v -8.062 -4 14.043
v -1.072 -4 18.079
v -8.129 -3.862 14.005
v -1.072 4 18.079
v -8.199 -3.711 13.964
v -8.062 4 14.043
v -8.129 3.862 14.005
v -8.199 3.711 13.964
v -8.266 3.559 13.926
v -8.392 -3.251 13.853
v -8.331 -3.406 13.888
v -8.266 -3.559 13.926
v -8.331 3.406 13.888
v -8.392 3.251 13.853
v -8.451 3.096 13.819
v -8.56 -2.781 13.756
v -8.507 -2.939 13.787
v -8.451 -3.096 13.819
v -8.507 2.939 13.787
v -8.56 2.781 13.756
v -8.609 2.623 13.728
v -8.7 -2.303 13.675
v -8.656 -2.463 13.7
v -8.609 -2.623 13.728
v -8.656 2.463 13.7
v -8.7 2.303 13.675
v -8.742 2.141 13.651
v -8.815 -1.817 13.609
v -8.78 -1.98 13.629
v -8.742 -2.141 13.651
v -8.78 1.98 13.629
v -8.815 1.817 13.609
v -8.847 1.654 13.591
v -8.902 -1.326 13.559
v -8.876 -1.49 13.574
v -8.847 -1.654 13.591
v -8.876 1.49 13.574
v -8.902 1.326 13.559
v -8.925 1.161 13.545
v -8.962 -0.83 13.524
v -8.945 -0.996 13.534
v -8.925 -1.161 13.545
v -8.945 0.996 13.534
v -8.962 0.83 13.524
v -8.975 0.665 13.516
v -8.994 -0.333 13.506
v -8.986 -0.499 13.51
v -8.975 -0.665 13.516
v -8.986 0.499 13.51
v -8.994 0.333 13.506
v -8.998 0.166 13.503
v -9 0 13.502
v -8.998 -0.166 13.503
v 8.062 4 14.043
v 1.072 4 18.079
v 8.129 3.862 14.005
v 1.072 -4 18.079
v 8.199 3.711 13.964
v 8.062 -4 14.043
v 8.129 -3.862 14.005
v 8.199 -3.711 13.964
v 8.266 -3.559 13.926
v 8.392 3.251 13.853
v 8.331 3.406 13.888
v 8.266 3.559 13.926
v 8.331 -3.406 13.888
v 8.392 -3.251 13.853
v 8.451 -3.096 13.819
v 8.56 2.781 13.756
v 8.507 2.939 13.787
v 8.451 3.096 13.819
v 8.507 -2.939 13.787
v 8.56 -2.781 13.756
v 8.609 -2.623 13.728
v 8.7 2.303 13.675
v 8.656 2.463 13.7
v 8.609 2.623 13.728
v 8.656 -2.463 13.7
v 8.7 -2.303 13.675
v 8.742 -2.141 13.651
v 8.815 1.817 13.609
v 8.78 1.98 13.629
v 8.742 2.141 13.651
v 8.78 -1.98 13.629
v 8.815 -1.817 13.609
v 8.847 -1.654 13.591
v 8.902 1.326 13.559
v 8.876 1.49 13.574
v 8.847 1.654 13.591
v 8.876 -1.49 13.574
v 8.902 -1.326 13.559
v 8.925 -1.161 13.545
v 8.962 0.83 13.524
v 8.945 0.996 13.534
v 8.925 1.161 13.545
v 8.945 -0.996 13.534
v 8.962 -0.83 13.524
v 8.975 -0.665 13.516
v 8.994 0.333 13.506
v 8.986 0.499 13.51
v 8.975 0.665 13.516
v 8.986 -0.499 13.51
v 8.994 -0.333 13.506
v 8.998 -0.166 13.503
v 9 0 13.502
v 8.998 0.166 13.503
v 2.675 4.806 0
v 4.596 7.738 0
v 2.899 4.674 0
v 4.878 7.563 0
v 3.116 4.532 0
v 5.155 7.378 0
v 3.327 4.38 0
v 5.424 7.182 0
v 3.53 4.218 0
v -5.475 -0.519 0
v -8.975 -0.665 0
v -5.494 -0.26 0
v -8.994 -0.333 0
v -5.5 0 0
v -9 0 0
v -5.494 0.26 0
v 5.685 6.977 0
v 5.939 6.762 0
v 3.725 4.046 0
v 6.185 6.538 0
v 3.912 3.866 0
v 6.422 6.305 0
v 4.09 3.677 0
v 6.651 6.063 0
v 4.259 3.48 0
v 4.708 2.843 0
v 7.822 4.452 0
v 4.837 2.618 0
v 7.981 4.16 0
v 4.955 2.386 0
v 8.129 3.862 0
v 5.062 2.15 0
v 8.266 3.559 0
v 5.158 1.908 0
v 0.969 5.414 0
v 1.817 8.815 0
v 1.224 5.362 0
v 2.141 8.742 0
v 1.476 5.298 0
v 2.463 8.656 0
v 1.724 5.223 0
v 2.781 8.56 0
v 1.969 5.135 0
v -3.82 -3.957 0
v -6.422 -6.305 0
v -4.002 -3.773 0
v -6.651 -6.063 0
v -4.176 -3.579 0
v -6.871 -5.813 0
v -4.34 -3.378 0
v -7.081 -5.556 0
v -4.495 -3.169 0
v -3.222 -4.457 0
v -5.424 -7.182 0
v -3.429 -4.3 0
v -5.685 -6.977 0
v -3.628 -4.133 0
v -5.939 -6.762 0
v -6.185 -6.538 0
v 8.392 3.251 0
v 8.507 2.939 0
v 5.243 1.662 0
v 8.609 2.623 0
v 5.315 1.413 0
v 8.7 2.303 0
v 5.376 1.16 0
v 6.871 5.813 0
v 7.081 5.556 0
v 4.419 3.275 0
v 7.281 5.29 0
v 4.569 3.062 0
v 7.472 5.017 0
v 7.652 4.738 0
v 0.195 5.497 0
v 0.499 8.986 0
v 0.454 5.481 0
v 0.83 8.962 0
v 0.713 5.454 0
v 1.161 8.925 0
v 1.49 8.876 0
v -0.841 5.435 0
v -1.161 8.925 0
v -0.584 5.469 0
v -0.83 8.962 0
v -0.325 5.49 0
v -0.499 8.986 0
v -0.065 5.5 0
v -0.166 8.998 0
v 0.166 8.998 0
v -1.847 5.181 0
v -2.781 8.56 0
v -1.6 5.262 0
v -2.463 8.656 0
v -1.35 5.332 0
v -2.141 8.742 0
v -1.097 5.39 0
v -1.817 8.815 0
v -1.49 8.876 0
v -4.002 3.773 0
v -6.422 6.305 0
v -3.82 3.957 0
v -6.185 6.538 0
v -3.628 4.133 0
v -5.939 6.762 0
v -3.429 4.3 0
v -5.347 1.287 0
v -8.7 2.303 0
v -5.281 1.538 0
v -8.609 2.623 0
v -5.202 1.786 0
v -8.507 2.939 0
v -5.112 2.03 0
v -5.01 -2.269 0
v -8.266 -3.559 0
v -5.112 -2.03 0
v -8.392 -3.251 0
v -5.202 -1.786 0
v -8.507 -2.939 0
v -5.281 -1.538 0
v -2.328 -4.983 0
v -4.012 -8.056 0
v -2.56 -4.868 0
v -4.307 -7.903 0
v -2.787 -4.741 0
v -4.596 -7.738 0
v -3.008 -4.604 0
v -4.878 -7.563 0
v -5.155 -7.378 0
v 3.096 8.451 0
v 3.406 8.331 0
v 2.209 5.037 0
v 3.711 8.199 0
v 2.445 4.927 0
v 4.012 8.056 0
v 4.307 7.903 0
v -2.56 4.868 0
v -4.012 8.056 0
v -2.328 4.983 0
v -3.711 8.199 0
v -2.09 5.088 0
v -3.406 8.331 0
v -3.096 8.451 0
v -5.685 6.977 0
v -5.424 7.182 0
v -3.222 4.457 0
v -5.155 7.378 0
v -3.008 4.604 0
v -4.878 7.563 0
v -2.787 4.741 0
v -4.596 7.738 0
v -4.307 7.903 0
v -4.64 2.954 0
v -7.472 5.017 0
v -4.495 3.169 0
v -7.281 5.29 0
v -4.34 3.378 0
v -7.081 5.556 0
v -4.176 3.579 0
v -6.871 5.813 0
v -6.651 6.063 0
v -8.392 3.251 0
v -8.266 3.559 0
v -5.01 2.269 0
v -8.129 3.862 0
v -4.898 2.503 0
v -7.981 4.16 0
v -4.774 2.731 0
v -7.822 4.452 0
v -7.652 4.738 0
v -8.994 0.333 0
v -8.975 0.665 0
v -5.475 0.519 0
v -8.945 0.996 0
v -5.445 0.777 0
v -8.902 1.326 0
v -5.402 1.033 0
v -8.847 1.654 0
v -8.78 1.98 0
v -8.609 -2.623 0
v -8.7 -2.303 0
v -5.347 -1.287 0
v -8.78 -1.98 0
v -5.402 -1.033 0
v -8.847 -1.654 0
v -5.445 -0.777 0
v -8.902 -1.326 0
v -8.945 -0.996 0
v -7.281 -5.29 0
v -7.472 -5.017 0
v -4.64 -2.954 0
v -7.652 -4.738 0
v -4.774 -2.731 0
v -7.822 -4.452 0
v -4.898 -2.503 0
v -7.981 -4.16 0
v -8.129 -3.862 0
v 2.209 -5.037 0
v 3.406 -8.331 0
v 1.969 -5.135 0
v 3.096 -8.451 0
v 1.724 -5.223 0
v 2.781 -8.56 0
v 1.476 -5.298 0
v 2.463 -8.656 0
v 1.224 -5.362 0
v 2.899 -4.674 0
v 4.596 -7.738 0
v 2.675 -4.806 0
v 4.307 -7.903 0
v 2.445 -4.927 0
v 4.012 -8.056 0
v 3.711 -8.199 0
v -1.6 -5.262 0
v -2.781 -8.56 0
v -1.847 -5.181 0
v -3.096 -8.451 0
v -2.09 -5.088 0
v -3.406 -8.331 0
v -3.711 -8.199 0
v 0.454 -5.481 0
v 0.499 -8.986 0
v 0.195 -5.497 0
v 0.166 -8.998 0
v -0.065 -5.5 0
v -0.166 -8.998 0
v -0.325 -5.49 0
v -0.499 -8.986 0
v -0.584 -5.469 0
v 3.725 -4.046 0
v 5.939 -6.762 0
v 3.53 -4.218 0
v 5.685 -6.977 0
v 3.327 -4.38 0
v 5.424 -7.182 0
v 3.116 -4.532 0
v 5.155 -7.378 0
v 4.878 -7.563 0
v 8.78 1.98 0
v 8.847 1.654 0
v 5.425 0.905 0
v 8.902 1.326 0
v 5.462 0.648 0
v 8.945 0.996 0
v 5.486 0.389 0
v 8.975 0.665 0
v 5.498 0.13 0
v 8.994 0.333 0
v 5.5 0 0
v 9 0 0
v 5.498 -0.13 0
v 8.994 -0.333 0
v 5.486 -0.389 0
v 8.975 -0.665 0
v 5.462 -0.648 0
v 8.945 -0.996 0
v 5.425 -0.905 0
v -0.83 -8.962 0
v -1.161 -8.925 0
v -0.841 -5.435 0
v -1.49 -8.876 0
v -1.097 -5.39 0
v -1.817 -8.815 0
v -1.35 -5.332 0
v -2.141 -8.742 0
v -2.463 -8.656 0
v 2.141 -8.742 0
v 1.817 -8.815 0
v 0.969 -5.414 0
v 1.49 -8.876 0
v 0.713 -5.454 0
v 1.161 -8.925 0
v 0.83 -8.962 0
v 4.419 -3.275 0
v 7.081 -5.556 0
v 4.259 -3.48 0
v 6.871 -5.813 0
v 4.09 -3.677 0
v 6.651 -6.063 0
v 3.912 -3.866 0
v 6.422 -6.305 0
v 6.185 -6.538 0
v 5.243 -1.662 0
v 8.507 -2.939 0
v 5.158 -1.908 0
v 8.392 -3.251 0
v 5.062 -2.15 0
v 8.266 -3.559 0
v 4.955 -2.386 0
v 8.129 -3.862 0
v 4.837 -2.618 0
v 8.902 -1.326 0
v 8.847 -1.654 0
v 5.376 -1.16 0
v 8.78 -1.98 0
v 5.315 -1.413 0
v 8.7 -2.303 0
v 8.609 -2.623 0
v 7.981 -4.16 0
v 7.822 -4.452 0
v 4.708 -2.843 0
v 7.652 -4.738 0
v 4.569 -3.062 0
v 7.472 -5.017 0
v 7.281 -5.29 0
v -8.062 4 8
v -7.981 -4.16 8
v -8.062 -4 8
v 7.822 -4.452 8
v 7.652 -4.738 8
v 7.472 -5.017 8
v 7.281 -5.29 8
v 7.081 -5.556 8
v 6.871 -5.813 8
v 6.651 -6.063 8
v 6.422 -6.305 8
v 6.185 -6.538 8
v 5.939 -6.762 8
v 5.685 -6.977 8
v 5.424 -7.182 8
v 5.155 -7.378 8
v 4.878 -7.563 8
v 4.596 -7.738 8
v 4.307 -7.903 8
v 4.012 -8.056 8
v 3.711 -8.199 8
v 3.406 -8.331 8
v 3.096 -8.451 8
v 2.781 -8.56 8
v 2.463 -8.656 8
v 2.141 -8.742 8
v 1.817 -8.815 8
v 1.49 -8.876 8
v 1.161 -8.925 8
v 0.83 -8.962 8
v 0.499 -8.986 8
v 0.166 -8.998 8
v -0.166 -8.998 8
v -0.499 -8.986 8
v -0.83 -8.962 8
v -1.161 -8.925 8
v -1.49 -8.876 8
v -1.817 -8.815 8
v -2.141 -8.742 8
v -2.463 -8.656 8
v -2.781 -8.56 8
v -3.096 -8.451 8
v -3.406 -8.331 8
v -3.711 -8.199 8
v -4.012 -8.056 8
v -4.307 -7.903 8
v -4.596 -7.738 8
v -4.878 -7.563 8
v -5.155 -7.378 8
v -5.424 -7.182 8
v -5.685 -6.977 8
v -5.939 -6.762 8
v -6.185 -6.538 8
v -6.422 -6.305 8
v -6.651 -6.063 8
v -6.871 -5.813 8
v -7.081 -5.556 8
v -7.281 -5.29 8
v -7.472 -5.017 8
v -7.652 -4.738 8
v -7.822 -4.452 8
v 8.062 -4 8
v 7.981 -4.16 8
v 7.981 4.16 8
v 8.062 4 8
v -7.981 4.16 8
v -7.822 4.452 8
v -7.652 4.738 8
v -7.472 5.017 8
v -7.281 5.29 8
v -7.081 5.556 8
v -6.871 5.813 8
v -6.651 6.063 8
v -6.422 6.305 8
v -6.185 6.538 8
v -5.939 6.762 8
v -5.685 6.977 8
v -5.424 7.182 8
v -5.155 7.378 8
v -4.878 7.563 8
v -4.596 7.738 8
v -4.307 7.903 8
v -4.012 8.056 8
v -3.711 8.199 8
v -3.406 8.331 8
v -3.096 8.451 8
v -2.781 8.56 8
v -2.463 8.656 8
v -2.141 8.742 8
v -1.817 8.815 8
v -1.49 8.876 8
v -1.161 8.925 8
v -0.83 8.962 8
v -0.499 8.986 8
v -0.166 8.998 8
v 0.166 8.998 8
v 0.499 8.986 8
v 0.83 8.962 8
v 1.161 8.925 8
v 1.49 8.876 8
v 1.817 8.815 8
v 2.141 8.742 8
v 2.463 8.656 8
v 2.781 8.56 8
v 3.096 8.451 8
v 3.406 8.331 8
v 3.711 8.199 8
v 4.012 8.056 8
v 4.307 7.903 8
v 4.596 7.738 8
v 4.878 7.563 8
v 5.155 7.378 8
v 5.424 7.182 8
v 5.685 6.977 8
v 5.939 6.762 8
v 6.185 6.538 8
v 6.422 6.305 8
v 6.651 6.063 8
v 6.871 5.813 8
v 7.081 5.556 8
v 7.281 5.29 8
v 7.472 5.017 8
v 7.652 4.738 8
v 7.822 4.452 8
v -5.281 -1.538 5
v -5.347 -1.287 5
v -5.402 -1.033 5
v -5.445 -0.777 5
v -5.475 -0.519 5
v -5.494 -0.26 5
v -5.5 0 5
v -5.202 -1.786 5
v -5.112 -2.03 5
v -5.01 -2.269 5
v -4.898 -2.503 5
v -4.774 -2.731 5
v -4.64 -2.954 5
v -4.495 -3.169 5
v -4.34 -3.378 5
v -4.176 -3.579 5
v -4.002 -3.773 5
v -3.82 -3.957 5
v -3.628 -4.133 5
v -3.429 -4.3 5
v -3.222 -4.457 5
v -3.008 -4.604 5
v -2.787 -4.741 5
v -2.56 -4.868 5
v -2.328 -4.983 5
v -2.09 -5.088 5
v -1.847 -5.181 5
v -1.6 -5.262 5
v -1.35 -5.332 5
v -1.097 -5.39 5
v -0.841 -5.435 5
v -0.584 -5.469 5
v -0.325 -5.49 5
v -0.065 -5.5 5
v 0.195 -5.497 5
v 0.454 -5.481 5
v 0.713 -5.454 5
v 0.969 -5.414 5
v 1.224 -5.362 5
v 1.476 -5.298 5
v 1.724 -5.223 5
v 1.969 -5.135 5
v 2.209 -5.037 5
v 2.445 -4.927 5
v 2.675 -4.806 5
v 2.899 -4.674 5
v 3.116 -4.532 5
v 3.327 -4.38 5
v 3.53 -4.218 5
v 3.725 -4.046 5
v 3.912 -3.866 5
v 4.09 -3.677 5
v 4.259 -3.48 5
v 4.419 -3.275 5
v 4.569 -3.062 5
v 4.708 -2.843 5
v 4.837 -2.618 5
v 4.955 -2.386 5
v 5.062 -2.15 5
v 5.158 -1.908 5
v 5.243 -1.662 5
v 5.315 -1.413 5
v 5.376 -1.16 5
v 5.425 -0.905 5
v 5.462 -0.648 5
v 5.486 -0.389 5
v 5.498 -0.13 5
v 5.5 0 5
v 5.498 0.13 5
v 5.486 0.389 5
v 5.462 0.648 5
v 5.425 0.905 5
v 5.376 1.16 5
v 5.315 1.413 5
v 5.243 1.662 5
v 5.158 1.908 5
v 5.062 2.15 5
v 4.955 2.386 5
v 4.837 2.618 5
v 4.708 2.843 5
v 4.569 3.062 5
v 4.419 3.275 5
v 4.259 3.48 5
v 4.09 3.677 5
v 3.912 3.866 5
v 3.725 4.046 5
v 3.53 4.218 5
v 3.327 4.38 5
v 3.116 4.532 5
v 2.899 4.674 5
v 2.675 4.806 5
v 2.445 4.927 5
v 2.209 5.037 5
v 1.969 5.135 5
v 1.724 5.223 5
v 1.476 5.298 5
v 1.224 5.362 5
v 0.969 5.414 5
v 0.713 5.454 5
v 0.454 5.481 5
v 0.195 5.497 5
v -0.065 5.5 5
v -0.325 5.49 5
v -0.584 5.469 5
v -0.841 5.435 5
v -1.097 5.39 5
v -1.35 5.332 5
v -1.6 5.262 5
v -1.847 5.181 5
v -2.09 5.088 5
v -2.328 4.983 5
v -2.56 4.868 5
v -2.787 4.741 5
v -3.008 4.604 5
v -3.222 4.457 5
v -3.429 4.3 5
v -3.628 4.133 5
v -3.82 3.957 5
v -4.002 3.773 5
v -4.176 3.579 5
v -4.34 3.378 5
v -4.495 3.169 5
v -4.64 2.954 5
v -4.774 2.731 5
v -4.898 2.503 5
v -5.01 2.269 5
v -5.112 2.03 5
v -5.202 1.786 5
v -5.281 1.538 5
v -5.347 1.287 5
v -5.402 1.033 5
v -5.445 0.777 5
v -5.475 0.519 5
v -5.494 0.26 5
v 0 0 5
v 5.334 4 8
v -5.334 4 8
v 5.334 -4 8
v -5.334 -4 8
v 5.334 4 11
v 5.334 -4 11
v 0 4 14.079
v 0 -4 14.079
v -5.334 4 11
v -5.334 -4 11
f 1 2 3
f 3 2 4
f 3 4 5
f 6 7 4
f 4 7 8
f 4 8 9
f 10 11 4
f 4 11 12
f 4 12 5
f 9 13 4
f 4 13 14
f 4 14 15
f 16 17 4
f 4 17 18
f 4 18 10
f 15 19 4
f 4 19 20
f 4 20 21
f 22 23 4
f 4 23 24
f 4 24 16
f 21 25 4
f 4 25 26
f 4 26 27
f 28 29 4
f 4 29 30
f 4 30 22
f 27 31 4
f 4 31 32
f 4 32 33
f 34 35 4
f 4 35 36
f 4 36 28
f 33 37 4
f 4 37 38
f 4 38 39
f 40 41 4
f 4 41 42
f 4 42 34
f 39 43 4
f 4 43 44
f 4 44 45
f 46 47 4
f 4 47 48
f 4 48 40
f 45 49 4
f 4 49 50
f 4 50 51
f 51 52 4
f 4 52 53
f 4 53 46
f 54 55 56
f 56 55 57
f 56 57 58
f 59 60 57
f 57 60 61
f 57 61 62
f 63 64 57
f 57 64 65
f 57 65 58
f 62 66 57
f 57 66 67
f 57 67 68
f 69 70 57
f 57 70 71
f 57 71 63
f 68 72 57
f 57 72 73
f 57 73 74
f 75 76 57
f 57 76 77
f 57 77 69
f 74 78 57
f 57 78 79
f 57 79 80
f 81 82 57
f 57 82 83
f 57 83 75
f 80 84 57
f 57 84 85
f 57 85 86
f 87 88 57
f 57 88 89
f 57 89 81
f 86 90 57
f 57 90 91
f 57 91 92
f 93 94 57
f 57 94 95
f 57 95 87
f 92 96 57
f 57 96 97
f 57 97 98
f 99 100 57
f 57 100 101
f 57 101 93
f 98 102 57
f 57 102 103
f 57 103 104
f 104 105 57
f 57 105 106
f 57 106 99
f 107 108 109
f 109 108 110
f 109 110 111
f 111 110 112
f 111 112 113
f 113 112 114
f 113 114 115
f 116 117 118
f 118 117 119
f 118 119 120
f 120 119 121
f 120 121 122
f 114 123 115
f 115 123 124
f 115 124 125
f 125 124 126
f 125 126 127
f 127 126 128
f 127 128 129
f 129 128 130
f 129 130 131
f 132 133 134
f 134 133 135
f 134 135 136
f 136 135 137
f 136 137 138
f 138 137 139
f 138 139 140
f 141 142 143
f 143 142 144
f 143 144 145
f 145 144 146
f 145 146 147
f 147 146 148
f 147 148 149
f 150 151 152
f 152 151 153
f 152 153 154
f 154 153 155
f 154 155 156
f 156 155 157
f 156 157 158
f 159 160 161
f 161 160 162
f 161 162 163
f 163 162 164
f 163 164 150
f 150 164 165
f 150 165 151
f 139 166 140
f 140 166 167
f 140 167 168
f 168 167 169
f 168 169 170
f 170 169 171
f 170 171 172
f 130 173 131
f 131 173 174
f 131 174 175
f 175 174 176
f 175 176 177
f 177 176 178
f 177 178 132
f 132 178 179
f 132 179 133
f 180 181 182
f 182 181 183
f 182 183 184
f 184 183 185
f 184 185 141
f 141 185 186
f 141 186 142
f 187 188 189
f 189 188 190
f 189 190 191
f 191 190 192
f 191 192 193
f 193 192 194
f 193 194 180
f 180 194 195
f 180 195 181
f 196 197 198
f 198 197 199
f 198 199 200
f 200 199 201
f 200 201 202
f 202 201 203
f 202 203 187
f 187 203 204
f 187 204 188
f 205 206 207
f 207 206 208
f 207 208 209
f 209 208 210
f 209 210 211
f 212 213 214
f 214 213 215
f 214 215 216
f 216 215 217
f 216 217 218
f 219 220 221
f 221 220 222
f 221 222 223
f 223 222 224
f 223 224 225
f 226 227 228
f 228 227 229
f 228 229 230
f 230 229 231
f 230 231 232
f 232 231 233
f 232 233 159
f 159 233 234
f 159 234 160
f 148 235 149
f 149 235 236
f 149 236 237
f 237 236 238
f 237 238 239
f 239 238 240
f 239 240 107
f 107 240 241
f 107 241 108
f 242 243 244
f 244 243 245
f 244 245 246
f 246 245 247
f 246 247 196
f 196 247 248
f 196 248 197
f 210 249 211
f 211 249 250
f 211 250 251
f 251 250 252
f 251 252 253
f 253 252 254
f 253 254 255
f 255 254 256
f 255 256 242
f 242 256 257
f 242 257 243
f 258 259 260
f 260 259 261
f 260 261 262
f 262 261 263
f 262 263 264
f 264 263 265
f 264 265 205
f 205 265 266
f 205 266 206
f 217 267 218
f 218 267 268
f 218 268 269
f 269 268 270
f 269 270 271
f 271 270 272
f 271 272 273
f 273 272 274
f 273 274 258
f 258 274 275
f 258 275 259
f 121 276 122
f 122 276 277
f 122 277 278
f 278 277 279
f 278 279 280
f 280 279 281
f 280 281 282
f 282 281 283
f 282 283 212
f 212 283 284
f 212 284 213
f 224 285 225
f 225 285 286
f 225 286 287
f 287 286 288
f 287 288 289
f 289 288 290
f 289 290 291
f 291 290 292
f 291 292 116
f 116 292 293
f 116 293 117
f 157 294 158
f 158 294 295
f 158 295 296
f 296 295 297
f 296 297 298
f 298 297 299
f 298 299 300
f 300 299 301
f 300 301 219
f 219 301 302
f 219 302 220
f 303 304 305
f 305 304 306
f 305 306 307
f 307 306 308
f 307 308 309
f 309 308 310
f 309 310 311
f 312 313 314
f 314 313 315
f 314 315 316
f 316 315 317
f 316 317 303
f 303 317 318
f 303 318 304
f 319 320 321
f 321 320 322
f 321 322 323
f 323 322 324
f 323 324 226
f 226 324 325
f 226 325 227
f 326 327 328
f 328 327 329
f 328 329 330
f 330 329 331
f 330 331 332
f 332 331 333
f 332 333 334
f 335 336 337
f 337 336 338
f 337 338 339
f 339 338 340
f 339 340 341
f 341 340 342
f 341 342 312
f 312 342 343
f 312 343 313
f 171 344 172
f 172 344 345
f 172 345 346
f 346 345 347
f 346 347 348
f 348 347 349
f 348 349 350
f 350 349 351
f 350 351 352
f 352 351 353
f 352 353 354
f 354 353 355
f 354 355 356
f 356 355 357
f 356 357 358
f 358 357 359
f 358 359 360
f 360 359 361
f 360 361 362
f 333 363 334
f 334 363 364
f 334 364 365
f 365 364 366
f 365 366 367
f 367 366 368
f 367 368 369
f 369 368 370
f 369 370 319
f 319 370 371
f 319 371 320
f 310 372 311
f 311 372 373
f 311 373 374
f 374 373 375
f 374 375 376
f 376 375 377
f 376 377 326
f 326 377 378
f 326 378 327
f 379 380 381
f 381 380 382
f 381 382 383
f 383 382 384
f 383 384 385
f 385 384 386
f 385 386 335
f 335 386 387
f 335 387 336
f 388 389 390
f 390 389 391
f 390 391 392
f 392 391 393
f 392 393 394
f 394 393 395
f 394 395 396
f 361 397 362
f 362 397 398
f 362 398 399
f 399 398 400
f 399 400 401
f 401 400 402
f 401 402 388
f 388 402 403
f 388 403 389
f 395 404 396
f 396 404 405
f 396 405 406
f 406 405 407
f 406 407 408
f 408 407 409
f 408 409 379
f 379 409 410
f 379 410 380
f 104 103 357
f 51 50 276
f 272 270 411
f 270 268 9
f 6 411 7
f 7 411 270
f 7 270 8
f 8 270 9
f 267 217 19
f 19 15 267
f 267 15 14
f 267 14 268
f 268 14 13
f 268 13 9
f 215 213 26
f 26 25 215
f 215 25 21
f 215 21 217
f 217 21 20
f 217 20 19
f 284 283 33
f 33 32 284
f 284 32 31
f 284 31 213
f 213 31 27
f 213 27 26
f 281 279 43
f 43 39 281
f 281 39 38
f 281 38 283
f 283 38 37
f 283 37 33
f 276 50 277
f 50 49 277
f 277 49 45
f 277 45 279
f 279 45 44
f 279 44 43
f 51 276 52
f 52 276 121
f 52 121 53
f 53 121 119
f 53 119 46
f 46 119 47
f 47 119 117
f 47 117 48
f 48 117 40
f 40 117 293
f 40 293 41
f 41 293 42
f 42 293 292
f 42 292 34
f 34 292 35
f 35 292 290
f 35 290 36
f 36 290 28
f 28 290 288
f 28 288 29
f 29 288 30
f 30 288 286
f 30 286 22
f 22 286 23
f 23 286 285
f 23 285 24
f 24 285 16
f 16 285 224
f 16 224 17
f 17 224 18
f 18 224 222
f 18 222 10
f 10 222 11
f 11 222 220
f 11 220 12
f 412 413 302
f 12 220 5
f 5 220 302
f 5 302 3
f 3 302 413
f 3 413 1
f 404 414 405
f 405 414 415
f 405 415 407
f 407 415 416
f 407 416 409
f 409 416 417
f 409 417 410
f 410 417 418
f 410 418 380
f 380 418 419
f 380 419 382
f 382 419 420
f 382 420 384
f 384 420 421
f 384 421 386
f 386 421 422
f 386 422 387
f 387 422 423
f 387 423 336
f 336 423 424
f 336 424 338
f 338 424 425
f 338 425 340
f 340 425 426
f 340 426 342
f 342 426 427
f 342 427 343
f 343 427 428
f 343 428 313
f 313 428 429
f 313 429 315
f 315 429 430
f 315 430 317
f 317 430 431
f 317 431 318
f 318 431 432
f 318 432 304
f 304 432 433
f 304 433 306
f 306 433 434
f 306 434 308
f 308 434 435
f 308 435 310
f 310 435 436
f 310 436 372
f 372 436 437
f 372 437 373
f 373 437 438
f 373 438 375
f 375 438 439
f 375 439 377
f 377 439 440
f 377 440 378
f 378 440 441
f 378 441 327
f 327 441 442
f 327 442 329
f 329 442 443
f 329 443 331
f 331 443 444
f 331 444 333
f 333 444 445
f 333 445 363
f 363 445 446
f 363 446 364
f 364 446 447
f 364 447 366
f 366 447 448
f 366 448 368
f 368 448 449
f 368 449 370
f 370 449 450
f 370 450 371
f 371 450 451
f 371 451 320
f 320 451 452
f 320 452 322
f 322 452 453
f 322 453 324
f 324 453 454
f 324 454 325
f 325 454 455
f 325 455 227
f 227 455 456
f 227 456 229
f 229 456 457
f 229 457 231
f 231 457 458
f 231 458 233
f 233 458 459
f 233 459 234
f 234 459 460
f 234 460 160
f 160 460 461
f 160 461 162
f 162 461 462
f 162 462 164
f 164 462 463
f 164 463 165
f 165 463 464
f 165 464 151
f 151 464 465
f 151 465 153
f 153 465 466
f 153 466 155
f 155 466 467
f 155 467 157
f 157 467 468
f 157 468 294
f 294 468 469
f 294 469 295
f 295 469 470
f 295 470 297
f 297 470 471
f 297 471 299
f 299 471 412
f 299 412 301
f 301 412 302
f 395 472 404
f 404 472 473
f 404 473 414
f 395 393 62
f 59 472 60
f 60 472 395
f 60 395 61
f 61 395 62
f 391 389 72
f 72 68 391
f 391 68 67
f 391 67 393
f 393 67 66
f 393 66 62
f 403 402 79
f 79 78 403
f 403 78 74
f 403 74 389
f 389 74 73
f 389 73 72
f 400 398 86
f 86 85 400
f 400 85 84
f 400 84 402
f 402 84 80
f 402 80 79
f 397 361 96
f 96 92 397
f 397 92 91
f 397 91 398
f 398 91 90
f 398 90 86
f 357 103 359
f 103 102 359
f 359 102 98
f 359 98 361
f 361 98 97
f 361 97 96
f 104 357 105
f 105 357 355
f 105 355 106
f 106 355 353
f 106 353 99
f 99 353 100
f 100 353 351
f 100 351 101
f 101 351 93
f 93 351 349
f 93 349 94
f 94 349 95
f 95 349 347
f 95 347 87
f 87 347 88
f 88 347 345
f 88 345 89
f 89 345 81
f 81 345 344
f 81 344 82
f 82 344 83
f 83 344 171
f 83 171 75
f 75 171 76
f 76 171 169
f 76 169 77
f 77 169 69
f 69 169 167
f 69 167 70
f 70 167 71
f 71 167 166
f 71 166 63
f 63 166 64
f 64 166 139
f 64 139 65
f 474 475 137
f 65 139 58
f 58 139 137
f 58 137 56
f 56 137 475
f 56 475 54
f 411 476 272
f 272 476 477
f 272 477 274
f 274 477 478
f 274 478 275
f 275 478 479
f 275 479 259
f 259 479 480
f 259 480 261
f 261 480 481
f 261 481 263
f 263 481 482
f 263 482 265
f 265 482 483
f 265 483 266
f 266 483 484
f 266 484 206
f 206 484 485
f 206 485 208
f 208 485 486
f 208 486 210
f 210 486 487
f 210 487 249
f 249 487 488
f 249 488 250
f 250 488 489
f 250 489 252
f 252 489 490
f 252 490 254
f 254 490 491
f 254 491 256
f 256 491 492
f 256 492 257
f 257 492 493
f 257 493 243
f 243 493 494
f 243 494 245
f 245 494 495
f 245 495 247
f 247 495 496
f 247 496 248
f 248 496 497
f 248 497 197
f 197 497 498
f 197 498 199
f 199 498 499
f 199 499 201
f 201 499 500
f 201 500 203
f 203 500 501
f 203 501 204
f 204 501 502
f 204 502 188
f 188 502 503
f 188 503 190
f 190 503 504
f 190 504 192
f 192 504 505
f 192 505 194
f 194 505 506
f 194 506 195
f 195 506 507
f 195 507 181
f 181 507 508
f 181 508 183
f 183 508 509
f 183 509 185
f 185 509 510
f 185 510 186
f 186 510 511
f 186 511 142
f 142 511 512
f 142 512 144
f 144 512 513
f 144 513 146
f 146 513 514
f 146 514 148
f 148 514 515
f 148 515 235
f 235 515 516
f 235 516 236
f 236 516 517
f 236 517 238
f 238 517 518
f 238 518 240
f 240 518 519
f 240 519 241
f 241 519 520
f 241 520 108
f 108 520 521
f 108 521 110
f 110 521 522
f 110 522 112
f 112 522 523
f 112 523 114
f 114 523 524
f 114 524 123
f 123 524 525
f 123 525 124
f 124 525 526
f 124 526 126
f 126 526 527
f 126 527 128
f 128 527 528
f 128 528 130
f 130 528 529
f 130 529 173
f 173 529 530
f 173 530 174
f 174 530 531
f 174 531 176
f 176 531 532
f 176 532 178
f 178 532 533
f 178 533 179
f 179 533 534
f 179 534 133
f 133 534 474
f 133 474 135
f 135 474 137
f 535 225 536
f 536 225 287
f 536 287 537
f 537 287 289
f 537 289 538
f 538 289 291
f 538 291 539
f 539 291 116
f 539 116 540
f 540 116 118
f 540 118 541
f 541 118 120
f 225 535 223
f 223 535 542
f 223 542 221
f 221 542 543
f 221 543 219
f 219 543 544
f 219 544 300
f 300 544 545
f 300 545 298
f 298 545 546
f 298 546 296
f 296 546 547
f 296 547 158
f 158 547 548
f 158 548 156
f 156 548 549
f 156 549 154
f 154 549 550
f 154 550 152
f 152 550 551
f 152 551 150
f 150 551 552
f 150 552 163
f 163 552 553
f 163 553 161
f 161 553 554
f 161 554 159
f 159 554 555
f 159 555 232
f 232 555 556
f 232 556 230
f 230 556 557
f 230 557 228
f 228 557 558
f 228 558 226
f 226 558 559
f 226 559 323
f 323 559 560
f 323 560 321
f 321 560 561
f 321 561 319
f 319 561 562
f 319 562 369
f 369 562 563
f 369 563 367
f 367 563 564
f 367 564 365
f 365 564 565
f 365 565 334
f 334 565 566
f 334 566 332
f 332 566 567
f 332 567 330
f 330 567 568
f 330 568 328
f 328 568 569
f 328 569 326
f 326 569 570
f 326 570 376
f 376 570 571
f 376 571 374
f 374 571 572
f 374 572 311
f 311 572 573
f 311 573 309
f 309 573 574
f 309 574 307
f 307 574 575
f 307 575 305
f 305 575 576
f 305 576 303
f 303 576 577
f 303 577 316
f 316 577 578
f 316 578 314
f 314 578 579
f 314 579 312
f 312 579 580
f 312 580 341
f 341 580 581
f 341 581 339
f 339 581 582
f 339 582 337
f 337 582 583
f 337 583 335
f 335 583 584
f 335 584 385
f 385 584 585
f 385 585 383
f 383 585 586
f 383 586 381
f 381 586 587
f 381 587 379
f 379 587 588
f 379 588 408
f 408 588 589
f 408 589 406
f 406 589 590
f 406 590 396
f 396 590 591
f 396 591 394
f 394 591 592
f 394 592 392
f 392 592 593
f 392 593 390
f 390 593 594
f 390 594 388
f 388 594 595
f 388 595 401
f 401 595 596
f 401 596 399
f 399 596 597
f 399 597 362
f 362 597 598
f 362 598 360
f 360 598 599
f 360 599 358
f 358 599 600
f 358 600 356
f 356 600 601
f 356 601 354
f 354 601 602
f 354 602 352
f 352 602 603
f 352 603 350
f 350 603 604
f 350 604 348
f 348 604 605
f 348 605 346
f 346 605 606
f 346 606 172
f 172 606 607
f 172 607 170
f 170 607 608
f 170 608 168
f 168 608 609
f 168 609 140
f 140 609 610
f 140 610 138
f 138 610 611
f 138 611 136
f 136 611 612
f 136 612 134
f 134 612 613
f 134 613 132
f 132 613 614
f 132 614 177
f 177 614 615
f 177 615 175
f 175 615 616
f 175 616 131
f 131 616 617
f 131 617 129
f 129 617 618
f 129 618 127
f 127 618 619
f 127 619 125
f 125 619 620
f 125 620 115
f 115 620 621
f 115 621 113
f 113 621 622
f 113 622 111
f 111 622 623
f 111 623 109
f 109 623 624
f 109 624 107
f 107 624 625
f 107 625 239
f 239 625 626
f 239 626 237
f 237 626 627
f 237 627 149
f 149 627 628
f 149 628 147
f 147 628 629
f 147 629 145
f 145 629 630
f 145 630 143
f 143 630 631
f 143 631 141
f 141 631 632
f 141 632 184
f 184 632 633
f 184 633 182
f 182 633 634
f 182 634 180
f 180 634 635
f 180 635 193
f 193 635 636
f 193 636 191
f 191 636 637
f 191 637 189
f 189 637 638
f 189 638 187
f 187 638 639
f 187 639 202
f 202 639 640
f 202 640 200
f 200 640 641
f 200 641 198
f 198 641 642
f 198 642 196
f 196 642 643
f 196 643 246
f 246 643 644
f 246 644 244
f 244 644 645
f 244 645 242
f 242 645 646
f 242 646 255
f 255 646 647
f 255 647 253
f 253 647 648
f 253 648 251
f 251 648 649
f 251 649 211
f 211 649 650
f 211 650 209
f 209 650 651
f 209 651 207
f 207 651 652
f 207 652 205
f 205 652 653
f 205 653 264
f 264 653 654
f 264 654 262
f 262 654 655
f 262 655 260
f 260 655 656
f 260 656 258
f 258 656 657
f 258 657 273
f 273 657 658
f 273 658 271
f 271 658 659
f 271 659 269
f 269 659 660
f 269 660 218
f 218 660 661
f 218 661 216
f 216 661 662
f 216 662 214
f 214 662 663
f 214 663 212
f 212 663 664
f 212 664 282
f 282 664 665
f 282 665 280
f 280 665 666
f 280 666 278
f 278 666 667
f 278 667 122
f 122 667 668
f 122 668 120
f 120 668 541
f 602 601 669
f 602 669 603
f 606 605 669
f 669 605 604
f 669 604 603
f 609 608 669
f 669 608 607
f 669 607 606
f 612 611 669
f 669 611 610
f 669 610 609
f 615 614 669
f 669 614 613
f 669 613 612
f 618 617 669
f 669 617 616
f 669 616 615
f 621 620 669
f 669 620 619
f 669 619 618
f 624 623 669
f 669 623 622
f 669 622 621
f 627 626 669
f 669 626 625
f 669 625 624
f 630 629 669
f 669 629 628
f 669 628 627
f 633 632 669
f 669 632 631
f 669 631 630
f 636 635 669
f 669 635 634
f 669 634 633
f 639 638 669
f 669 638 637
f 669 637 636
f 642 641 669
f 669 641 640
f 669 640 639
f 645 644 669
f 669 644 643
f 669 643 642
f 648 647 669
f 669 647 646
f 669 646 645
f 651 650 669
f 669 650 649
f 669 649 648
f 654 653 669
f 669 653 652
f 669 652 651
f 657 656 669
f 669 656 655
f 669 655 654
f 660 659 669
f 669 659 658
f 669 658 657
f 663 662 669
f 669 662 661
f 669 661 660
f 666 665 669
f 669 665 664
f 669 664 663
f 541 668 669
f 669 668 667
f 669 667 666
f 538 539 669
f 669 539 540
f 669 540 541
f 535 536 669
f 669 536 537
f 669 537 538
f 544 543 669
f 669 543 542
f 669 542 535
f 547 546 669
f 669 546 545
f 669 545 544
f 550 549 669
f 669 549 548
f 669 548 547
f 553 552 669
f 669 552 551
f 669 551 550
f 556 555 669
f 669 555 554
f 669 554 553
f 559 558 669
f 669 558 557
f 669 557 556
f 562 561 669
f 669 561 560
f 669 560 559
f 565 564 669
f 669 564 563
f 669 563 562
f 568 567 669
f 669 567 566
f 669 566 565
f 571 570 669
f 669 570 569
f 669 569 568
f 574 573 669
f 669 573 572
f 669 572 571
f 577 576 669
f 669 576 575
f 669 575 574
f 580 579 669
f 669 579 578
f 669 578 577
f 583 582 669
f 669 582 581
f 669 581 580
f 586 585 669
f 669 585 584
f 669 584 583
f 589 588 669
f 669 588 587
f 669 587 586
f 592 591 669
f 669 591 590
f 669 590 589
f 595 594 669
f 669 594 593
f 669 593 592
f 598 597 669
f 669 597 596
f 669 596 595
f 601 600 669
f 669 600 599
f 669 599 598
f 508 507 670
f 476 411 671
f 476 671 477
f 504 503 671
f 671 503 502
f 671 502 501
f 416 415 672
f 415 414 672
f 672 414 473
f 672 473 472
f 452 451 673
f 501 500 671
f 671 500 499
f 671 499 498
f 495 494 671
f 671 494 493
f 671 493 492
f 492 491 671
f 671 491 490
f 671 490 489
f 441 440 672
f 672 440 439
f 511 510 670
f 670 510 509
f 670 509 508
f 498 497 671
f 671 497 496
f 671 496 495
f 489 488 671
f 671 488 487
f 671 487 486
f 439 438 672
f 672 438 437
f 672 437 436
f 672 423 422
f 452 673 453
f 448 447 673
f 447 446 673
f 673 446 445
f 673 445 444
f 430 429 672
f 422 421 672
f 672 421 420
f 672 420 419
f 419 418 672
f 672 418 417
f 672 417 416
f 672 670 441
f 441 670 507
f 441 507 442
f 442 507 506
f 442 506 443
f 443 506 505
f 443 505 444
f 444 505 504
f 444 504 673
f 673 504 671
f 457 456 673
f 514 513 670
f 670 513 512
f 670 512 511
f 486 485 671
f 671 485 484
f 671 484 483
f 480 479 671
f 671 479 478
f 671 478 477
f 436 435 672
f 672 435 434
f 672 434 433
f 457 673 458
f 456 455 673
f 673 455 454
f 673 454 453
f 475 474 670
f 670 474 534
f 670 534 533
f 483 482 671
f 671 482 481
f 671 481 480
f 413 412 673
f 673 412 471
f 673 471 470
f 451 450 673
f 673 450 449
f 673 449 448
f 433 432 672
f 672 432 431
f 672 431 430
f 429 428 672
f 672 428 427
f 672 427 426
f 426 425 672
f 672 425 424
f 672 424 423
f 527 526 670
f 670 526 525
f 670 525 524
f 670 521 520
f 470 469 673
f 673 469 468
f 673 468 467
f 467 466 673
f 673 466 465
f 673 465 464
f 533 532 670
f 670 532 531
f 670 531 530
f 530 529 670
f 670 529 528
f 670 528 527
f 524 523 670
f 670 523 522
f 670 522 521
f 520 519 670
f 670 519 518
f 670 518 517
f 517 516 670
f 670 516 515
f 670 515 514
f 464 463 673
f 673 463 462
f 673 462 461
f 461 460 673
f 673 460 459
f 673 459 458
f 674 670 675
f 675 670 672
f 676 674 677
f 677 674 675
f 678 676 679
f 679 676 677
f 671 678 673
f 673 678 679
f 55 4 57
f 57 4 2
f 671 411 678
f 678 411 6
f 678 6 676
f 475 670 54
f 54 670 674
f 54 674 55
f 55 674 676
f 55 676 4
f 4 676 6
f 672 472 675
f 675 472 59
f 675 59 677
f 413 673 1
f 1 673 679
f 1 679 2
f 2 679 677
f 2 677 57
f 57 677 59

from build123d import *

# Parameters (mm, degrees)
SKETCH1_R           = 9
SKETCH1_R_2         = 5.5
BOSS_EXTRUDE1_DEPTH = 5
SKETCH2_R           = 9
BOSS_EXTRUDE2_DEPTH = 3
BOSS_EXTRUDE3_DEPTH = 4
SKETCH4_OUTSIDE_W   = 26.244
SKETCH4_OUTSIDE_H   = 26.244
SKETCH4_OUTSIDE_R   = 9
CUT_EXTRUDE1_DEPTH  = 17.235607036


with BuildPart() as part:
    # Sketch1 → Boss-Extrude1 (new body)
    with BuildSketch(Plane.XY):
        Circle(SKETCH1_R)
        Circle(SKETCH1_R_2, mode=Mode.SUBTRACT)
    extrude(amount=BOSS_EXTRUDE1_DEPTH)

    # Sketch2 → Boss-Extrude2 (add)
    with BuildSketch(Plane.XY.offset(5)):
        Circle(SKETCH2_R)
    extrude(amount=BOSS_EXTRUDE2_DEPTH)

    # Sketch3 → Boss-Extrude3 (add, symmetric)
    with BuildSketch(Plane(origin=(0, 0, 0), x_dir=(1, 0, 0), z_dir=(0, 1, 0))):
        Polygon((-5.333731513, -11), (-5.333731513, -8), (-9, -8), (-9, -13.502081056), (-1.07179677, -18.079431325), (1.07179677, -18.079431325), (9, -13.502081056), (9, -8), (5.333731513, -8), (5.333731513, -11), (0, -14.079431325), align=None)
    extrude(amount=BOSS_EXTRUDE3_DEPTH, both=True)

    # Sketch4 outside → Cut-Extrude1 (cut, through all)
    with BuildSketch(Plane.XY.offset(8)):
        Rectangle(SKETCH4_OUTSIDE_W, SKETCH4_OUTSIDE_H)
        with Locations(Location((0, 0, 0), (0, 0, 206.387799961))):
            Circle(SKETCH4_OUTSIDE_R, mode=Mode.SUBTRACT)
    extrude(amount=CUT_EXTRUDE1_DEPTH, mode=Mode.SUBTRACT)


solid = part.part
